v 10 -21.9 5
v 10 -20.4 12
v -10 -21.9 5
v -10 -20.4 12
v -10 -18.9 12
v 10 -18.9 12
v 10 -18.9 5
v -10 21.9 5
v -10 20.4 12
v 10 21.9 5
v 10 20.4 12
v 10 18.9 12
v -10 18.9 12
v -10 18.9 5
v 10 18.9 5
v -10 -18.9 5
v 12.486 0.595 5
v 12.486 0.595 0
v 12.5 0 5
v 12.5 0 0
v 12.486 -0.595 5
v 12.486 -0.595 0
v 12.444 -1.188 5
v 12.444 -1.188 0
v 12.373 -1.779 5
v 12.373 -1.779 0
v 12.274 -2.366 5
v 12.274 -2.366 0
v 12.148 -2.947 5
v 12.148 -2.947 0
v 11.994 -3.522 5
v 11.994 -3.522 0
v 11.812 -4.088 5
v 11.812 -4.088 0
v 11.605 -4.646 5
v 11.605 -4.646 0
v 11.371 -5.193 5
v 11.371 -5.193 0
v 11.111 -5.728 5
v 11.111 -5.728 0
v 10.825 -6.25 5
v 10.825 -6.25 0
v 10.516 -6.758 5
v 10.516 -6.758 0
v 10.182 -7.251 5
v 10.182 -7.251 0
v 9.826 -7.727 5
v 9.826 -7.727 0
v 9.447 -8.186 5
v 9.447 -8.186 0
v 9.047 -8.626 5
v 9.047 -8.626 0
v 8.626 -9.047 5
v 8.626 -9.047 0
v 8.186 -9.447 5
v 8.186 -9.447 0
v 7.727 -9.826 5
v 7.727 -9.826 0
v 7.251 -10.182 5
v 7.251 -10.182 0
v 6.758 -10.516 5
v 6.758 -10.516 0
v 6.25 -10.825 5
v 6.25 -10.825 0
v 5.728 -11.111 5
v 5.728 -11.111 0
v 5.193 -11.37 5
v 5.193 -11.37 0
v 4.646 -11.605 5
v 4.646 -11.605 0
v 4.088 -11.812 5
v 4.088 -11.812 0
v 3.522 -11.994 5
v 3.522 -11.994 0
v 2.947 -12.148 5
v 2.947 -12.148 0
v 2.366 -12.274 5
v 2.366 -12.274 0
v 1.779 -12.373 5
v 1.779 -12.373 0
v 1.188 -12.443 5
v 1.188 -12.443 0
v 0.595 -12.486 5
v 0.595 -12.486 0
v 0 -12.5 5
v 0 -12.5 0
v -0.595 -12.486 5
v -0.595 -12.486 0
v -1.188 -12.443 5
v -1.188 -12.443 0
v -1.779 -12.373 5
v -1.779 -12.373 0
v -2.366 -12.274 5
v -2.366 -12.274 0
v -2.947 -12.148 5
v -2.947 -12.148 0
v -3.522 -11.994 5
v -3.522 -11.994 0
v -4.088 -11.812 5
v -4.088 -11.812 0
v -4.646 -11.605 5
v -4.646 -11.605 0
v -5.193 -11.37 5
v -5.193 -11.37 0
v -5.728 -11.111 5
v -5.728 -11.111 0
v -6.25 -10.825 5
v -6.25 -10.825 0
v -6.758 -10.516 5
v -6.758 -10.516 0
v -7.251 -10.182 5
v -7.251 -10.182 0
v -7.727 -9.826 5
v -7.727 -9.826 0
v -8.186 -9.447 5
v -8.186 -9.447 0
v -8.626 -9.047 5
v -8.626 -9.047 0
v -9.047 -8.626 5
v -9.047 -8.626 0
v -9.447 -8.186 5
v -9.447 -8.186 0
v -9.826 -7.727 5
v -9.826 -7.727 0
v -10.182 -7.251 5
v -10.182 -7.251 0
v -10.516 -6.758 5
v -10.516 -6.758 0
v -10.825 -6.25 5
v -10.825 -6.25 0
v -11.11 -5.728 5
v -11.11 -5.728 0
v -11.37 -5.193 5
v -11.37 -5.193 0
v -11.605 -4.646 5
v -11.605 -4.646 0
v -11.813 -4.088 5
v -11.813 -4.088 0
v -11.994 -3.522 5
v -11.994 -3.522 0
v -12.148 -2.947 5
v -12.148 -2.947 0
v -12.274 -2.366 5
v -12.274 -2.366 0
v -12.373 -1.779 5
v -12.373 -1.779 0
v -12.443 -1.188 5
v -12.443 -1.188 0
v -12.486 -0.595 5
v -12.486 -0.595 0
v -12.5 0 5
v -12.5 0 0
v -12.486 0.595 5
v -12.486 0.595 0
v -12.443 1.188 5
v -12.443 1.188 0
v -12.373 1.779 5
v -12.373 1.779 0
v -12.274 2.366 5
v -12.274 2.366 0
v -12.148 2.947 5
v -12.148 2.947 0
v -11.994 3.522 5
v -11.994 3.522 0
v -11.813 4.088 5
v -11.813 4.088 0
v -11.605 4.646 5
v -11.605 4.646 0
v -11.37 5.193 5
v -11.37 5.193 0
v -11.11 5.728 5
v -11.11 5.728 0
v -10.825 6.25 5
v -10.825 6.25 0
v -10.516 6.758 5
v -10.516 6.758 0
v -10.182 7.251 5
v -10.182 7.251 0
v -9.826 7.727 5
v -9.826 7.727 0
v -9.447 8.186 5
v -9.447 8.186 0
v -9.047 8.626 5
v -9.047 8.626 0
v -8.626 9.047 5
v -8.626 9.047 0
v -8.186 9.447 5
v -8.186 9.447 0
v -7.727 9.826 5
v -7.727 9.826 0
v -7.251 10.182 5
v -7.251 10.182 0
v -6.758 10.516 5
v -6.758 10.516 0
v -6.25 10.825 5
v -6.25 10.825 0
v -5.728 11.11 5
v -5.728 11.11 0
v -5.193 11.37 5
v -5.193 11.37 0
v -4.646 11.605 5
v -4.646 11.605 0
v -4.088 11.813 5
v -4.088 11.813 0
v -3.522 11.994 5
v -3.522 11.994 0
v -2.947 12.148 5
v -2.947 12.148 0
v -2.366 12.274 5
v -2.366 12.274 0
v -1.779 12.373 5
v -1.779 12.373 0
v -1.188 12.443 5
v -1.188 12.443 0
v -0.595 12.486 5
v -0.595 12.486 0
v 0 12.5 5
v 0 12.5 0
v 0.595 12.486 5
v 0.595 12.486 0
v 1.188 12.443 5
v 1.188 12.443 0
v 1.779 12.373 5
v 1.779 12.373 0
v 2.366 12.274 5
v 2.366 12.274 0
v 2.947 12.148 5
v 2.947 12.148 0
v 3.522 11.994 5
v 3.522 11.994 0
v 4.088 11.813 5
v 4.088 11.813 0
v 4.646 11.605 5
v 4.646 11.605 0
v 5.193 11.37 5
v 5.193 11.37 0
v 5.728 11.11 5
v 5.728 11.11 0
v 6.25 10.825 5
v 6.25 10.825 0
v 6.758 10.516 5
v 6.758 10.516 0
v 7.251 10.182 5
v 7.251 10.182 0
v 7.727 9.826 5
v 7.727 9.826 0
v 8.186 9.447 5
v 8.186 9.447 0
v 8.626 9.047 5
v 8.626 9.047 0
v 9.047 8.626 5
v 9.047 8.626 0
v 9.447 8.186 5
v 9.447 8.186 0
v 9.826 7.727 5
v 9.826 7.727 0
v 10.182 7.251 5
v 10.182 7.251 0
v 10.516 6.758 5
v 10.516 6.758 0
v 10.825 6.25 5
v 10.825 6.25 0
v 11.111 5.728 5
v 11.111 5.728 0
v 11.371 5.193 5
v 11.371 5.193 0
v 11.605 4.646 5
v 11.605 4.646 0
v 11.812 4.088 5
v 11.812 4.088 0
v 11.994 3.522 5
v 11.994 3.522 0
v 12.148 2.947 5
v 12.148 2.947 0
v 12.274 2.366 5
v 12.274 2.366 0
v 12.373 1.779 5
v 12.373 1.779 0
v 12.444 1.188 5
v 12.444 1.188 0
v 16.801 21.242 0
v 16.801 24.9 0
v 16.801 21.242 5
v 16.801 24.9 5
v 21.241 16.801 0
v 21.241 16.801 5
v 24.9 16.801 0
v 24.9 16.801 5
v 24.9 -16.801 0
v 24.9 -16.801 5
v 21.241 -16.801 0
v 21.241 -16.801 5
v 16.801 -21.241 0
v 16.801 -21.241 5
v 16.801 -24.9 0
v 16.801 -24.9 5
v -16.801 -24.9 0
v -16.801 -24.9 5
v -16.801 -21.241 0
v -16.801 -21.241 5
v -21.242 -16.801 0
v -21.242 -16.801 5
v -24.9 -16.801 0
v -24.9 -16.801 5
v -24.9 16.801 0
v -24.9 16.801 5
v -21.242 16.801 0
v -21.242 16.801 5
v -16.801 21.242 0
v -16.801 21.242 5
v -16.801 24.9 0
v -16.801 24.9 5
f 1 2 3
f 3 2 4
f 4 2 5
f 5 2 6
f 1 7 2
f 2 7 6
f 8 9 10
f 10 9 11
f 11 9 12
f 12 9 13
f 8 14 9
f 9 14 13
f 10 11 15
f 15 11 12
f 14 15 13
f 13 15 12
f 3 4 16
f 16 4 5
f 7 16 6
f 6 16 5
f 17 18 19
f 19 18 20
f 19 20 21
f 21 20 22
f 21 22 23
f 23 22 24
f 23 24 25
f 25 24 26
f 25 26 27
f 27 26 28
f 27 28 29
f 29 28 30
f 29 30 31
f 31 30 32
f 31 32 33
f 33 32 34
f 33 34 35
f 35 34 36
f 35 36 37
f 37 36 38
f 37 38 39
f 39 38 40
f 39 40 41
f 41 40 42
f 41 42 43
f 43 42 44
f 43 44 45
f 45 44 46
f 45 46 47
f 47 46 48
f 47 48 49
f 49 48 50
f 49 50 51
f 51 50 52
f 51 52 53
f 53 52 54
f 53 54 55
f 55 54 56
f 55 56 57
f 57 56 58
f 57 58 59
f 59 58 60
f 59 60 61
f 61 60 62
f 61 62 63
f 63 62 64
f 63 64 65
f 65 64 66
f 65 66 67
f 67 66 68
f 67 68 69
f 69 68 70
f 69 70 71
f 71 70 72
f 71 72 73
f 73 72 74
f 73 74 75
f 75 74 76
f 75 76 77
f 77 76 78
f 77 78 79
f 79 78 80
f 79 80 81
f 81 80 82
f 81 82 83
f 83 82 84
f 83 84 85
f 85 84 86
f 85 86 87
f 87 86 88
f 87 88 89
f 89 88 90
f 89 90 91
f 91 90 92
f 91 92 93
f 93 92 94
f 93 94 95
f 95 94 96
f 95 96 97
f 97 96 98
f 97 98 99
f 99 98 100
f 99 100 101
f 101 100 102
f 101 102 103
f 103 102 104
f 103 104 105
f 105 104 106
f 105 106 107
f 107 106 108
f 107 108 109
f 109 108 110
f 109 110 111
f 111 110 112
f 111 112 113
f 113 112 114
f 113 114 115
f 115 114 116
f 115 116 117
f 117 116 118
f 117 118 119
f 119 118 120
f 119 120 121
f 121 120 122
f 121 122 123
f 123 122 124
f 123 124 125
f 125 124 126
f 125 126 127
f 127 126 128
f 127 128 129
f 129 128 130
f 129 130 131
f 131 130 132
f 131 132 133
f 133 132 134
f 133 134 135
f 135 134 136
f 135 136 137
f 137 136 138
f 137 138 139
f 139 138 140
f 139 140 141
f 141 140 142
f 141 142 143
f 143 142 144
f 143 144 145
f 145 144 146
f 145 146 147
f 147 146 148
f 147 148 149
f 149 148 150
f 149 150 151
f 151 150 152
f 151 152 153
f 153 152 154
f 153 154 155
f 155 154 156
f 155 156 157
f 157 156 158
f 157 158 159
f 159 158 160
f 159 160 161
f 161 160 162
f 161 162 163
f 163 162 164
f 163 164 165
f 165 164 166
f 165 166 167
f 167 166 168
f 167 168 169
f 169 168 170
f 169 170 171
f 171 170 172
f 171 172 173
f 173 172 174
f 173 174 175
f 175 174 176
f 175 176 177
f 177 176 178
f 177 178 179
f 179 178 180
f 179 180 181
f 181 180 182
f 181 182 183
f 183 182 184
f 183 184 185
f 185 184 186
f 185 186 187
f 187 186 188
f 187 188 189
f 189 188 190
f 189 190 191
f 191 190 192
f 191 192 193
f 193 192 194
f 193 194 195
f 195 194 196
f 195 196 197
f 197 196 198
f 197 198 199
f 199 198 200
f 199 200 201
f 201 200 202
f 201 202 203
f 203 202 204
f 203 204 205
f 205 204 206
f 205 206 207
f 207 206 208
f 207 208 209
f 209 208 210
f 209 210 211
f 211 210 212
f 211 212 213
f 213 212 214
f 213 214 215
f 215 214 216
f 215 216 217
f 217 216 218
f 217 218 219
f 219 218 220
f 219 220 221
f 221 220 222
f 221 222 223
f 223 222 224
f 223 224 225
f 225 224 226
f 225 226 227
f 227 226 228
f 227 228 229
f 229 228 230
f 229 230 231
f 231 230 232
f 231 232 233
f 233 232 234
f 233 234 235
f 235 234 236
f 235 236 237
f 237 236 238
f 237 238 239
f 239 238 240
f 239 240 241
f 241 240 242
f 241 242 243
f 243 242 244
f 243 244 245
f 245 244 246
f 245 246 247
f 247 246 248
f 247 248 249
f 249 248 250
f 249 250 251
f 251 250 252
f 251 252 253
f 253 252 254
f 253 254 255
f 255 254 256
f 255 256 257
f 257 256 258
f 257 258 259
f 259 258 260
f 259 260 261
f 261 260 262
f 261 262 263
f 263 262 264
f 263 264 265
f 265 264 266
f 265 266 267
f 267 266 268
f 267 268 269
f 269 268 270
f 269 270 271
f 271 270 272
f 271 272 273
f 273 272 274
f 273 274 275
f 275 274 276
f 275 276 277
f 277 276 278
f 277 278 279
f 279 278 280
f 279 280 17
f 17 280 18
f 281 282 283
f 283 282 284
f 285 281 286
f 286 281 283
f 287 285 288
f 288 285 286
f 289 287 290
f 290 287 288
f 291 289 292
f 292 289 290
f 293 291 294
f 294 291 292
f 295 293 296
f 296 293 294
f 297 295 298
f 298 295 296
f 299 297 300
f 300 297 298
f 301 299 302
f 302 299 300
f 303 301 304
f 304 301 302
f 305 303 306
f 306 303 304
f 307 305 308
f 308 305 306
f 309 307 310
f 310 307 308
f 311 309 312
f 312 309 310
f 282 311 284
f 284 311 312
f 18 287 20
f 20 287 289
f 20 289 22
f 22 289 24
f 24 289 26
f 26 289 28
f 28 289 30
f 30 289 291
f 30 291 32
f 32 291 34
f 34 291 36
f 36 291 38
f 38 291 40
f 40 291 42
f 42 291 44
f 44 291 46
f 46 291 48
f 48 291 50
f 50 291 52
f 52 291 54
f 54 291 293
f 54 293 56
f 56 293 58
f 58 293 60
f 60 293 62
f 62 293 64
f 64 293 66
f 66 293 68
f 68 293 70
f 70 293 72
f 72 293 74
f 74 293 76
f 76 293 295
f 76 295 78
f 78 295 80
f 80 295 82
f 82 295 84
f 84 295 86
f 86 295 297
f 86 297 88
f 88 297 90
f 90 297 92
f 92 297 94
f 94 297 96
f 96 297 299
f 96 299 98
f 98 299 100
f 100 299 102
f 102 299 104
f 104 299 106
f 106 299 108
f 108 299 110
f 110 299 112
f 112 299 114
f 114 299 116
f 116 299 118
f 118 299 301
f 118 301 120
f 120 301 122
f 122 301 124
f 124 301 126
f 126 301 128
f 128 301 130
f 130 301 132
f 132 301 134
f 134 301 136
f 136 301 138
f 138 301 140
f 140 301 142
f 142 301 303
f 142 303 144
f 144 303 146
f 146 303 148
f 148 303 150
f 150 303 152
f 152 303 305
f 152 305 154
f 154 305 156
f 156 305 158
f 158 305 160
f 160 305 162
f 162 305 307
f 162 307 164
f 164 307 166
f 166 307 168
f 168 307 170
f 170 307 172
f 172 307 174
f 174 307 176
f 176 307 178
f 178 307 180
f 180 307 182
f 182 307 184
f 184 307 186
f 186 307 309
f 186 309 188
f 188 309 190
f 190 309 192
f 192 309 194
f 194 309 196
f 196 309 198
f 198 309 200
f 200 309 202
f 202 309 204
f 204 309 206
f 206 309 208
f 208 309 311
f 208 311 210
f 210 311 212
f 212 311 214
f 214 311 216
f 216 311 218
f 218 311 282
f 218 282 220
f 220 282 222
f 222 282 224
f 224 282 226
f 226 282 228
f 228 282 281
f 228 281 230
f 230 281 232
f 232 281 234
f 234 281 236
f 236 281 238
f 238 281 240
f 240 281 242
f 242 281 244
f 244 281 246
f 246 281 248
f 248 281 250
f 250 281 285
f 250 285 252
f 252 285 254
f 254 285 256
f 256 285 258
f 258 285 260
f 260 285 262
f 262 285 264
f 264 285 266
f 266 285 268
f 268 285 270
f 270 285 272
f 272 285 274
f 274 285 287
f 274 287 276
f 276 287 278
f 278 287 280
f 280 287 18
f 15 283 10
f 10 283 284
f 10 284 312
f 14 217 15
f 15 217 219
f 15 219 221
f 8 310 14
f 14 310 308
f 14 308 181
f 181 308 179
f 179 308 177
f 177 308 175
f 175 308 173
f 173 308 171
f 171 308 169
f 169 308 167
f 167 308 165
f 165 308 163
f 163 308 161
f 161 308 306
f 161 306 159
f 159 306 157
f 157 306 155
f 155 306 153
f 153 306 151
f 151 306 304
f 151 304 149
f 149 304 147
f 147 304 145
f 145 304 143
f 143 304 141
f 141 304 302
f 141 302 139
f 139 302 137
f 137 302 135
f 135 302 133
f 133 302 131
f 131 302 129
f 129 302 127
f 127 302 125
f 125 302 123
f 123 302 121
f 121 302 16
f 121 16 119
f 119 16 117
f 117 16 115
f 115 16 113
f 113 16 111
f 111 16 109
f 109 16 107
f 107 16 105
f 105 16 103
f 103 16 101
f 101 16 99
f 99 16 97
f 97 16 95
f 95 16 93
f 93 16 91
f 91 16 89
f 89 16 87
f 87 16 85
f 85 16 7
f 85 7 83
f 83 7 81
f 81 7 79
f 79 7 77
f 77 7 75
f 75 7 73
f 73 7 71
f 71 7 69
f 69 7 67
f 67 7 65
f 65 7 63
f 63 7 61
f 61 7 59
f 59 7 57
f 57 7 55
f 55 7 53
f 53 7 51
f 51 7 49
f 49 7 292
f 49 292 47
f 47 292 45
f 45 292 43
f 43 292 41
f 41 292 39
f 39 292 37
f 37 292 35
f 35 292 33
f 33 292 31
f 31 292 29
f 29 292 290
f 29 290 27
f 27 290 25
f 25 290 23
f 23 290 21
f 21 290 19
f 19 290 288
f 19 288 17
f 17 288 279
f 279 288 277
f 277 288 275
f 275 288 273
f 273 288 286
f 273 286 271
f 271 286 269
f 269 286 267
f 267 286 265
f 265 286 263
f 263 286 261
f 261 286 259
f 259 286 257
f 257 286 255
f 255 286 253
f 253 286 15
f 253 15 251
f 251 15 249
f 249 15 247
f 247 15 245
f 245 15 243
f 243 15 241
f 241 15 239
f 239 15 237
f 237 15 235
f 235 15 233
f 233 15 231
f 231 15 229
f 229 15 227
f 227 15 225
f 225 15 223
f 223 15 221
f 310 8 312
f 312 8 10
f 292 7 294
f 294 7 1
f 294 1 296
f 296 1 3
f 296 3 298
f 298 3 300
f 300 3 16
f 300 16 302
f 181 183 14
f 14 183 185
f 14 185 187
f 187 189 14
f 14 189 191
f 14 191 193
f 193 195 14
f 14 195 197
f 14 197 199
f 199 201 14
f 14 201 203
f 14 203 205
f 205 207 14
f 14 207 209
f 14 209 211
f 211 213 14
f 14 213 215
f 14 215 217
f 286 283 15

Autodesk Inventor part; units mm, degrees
ref_plane "YZ Plane" through (0, 0, 0) normal (1, 0, 0) x (0, 1, 0)
ref_plane "XZ Plane" through (0, 0, 0) normal (0, 1, 0) x (-1, 0, 0)
ref_plane "XY Plane" through (0, 0, 0) normal (0, 0, 1) x (1, 0, 0)
sketch "Sketch1" plane through (0, 0, 0) normal (0, 0, 1) x (1, 0, 0)
  line L0 (-34.86, 0) -> (34.86, 0) construction
  line L1 (0, -34.86) -> (0, 34.86) construction
  line L2 (0, 0) -> (11.1575, 11.1575) construction
  line L3 (0, 0) -> (15.7791, 0) construction
  line L4 (0, 24.9) -> (16.8009, 24.9)
  line L5 (16.8009, 24.9) -> (16.8009, 21.2415)
  line L6 (16.8009, 21.2415) -> (19.0212, 19.0212)
  line L7 (24.9, 0) -> (24.9, 16.8009)
  line L8 (24.9, 16.8009) -> (21.2415, 16.8009)
  line L9 (21.2415, 16.8009) -> (19.0212, 19.0212)
  line L10 (0, -24.9) -> (16.8009, -24.9)
  line L11 (16.8009, -24.9) -> (16.8009, -21.2415)
  line L12 (16.8009, -21.2415) -> (19.0212, -19.0212)
  line L13 (24.9, 0) -> (24.9, -16.8009)
  line L14 (24.9, -16.8009) -> (21.2415, -16.8009)
  line L15 (21.2415, -16.8009) -> (19.0212, -19.0212)
  line L16 (0, 24.9) -> (-16.8009, 24.9)
  line L17 (-16.8009, 24.9) -> (-16.8009, 21.2415)
  line L18 (-16.8009, 21.2415) -> (-19.0212, 19.0212)
  line L19 (-24.9, 16.8009) -> (-21.2415, 16.8009)
  line L20 (-21.2415, 16.8009) -> (-19.0212, 19.0212)
  line L21 (0, -24.9) -> (-16.8009, -24.9)
  line L22 (-16.8009, -24.9) -> (-16.8009, -21.2415)
  line L23 (-16.8009, -21.2415) -> (-19.0212, -19.0212)
  line L24 (-21.2415, -16.8009) -> (-19.0212, -19.0212)
  line L25 (-24.9, -16.8009) -> (-21.2415, -16.8009)
  line L26 (-24.9, 0) -> (-24.9, -16.8009)
  line L27 (-24.9, 0) -> (-24.9, 16.8009)
  circle A0 centre (0, 0) radius 12.5
  dimension "d0" = 45
  dimension "d2" = 24.9
  dimension "d3" = 3.14
  dimension "d4" = 26.9
  dimension "d5" = 25
extrude "Extrusion1" add sketch "Sketch1" along normal blind 5
sketch "Sketch2" plane through (0, 0, 5) normal (0, 0, 1) x (1, 0, 0)
  circle A0 centre (0, 0) radius 12.5 projected
  line L0 (16.8009, 24.9) -> (-16.8009, 24.9) projected
  line L1 (-16.8009, 24.9) -> (-16.8009, 21.2415) projected
  line L2 (-16.8009, 21.2415) -> (-21.2415, 16.8009) projected
  line L3 (-21.2415, 16.8009) -> (-24.9, 16.8009) projected
  line L4 (-24.9, 16.8009) -> (-24.9, -16.8009) projected
  line L5 (-24.9, -16.8009) -> (-21.2415, -16.8009) projected
  line L6 (-21.2415, -16.8009) -> (-16.8009, -21.2415) projected
  line L7 (-16.8009, -21.2415) -> (-16.8009, -24.9) projected
  line L8 (-16.8009, -24.9) -> (16.8009, -24.9) projected
  line L9 (16.8009, -24.9) -> (16.8009, -21.2415) projected
  line L10 (16.8009, -21.2415) -> (21.2415, -16.8009) projected
  line L11 (21.2415, -16.8009) -> (24.9, -16.8009) projected
  line L12 (24.9, -16.8009) -> (24.9, 16.8009) projected
  line L13 (24.9, 16.8009) -> (21.2415, 16.8009) projected
  line L14 (21.2415, 16.8009) -> (16.8009, 21.2415) projected
  line L15 (16.8009, 21.2415) -> (16.8009, 24.9) projected
  line L16 (-34.86, 0) -> (34.86, 0) construction
  line L17 (0, -34.86) -> (0, 34.86) construction
  line L18 (-10, 21.9) -> (10, 21.9)
  line L19 (10, 21.9) -> (10, 18.9)
  line L20 (10, 18.9) -> (-10, 18.9)
  line L21 (-10, 18.9) -> (-10, 21.9)
  line L22 (-10, -21.9) -> (10, -21.9)
  line L23 (10, -21.9) -> (10, -18.9)
  line L24 (10, -18.9) -> (-10, -18.9)
  line L25 (-10, -18.9) -> (-10, -21.9)
  dimension "d8" = 20
  dimension "d9" = 3
  dimension "d10" = 3
extrude "Extrusion2" add sketch "Sketch2" along normal blind 7 contours L18 L19 L20 L21 | L25 L24 L23 L22
chamfer "Fase1" distance 1.5 distance2 7 1 edges at (0, 21.9, 12) measured on face at (-3.3333, 19.9, 12)
chamfer "Fase2" distance 1.5 distance2 7 1 edges at (0, -21.9, 12) measured on face at (-3.3333, -19.9, 12)
properties part number "20_Cube_insert_Sample_holder"
